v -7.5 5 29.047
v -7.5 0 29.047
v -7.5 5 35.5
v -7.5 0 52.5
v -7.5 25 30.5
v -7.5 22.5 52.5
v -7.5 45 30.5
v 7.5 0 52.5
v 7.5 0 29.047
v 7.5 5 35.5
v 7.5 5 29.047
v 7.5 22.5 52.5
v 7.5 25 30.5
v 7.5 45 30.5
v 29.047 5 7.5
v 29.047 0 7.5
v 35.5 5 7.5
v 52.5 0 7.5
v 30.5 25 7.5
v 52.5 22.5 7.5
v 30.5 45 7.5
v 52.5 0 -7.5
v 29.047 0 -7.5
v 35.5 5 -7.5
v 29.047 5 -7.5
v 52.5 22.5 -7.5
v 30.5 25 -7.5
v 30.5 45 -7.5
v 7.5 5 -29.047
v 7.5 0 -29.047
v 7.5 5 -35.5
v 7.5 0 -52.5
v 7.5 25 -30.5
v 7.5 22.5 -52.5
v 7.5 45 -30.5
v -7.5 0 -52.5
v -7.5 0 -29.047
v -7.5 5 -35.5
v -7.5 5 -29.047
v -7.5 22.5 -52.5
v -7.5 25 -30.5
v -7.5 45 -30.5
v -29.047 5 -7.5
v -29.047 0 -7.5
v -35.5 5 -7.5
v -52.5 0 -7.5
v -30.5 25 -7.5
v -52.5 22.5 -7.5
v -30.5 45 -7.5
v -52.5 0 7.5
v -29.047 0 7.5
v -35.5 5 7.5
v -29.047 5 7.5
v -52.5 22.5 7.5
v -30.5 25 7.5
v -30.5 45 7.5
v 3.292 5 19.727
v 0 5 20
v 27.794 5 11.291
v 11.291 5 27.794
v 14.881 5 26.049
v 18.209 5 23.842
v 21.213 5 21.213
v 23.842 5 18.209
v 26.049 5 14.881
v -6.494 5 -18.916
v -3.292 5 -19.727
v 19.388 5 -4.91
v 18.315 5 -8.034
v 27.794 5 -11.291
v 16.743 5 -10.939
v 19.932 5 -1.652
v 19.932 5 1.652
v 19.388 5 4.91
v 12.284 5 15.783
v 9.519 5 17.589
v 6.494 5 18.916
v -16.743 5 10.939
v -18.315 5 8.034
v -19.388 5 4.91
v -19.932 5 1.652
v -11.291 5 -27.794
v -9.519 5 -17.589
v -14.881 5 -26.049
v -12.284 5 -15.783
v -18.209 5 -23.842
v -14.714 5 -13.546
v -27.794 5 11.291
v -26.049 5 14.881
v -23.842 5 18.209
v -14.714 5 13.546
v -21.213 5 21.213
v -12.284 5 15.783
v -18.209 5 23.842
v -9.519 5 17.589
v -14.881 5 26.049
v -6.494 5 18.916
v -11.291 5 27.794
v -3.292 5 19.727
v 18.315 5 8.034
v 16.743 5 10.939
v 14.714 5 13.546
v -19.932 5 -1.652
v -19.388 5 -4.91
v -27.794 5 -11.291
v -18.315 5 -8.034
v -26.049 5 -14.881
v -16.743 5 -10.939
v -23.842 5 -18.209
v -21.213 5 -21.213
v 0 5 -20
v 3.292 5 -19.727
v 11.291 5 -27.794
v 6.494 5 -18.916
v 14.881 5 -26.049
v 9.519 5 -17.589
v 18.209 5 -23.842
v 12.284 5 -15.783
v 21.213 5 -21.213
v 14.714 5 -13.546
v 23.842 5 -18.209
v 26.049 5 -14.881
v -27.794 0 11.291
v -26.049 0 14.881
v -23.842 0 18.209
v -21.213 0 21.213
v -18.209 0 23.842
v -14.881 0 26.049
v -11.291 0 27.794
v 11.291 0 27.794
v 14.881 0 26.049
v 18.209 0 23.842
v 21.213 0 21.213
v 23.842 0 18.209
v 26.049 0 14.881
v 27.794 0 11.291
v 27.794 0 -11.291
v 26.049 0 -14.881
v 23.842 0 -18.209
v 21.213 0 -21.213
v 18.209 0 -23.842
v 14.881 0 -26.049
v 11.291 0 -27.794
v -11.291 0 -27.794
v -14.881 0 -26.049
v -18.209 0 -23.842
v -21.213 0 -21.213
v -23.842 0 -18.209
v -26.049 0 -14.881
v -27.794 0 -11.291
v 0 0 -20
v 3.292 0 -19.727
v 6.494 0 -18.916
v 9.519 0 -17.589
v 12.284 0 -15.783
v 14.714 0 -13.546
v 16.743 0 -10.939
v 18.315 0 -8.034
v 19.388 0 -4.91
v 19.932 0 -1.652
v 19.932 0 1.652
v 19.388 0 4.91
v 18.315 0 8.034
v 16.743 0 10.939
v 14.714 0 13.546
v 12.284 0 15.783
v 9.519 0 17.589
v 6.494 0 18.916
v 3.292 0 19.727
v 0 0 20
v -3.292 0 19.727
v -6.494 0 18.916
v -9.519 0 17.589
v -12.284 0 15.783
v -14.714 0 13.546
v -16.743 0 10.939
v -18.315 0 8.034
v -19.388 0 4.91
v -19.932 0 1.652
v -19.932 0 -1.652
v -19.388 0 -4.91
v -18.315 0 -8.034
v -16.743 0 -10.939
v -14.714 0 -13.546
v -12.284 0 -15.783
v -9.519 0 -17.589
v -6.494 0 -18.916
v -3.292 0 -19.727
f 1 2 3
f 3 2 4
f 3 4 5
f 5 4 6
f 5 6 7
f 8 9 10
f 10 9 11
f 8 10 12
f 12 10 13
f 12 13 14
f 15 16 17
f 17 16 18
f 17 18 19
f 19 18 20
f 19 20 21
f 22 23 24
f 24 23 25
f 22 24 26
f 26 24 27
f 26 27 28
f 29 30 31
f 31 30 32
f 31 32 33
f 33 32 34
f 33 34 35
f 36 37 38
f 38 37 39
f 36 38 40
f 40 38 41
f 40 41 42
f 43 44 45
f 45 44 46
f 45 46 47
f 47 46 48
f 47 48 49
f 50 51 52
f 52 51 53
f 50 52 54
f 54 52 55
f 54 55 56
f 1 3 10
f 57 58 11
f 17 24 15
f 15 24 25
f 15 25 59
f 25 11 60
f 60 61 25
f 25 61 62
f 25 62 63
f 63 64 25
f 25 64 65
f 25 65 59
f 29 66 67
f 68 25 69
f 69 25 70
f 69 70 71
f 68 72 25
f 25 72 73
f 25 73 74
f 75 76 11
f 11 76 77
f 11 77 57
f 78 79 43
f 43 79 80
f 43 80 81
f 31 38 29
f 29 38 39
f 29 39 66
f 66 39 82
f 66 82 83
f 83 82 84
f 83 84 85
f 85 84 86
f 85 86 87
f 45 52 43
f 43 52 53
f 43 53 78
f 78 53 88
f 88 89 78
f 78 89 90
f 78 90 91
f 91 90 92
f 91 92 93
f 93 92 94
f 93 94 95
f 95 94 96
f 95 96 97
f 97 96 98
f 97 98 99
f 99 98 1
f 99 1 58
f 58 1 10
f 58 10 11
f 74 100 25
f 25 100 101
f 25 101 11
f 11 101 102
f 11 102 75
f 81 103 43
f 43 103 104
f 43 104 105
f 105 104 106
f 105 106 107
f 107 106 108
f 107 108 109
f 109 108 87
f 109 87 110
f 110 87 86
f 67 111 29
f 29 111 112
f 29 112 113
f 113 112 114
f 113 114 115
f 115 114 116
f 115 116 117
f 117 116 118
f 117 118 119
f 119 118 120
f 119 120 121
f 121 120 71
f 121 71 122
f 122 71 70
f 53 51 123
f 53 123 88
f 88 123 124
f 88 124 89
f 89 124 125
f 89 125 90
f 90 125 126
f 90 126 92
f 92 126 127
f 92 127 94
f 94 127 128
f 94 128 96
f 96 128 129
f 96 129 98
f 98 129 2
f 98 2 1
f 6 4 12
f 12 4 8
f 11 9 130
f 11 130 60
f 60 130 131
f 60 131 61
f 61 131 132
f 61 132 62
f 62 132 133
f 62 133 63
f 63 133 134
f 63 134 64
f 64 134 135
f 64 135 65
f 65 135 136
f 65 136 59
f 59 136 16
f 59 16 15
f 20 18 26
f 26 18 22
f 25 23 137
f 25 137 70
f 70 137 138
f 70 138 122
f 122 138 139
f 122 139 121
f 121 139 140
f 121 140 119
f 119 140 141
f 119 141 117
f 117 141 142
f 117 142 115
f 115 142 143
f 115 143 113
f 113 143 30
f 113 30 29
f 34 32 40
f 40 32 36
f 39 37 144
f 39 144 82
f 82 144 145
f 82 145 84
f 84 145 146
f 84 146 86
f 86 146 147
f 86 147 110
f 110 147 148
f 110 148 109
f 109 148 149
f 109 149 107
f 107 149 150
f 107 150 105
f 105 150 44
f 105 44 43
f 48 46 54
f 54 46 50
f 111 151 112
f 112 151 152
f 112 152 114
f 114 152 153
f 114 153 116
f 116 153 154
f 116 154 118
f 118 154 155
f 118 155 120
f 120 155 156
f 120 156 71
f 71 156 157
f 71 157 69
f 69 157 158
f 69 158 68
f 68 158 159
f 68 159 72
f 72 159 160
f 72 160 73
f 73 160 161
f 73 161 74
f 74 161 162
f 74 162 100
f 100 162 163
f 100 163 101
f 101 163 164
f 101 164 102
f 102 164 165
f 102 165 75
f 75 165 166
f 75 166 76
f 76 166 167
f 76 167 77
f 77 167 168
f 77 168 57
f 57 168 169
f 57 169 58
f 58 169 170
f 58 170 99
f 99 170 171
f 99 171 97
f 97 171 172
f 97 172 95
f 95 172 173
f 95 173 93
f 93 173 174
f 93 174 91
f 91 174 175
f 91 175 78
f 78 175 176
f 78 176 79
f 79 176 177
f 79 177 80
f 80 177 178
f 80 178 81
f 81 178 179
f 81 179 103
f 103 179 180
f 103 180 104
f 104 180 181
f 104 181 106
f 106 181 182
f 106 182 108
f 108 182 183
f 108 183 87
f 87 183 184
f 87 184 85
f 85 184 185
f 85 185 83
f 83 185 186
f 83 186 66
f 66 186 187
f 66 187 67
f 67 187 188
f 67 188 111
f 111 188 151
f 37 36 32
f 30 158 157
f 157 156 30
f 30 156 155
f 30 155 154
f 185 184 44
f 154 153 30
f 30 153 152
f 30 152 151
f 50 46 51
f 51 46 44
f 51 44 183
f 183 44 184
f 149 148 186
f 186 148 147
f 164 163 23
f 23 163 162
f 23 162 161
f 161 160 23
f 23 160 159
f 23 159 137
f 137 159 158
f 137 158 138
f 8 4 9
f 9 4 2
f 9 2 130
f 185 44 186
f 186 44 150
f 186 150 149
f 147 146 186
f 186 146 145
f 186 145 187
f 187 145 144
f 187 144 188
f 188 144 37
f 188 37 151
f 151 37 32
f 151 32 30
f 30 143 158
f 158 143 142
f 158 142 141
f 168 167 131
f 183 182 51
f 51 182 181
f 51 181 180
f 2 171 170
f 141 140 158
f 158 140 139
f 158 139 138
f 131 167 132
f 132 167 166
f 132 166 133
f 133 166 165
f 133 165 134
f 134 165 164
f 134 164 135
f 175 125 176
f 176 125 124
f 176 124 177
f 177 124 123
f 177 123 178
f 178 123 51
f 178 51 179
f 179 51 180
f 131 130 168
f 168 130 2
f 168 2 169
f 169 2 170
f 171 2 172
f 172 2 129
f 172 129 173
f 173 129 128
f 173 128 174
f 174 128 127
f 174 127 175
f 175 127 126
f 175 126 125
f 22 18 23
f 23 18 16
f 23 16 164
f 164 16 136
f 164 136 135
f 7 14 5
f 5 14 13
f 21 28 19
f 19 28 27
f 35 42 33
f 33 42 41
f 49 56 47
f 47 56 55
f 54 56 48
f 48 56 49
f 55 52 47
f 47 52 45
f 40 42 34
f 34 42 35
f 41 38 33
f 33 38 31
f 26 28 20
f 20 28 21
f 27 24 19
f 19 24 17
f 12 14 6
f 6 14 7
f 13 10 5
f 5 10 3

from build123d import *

# Parameters (mm, degrees)
EXTRUDE_1_DEPTH     = 5
SKETCH_4_W          = 22
SKETCH_4_H          = 15
SKETCH_4_W_2        = 15
SKETCH_4_H_2        = 22
EXTRUDE_3_DEPTH     = 40
CUT_EXTRUDE_1_REACH = 93.549
CUT_EXTRUDE_2_REACH = 93.549
CUT_EXTRUDE_3_REACH = 93.549
CUT_EXTRUDE_4_REACH = 93.549


with BuildPart() as part:
    # 草图1 → 凸台-拉伸1 (new body)
    with BuildSketch(Plane(origin=(0, 0, 0), x_dir=(1, 0, 0), z_dir=(0, 1, 0))):
        with BuildLine():
            ThreePointArc((29.047375097, 7.5), (21.213203436, 21.213203436), (7.5, 29.047375097))
            Line((7.5, 29.047375097), (7.5, 18.540496218))
            ThreePointArc((7.5, 18.540496218), (14.142135624, 14.142135624), (18.540496218, 7.5))
            Line((18.540496218, 7.5), (29.047375097, 7.5))
        make_face()
        with BuildLine():
            ThreePointArc((30, 0), (29.760890888, 3.780128774), (29.047375097, 7.5))
            Line((29.047375097, 7.5), (18.540496218, 7.5))
            ThreePointArc((18.540496218, 7.5), (19.63173355, 3.820345249), (20, 0))
            ThreePointArc((20, 0), (19.63173355, -3.820345249), (18.540496218, -7.5))
            Line((18.540496218, -7.5), (29.047375097, -7.5))
            ThreePointArc((29.047375097, -7.5), (29.760890888, -3.780128774), (30, 0))
        make_face()
        with BuildLine():
            Line((52.5, 7.5), (29.047375097, 7.5))
            ThreePointArc((29.047375097, 7.5), (29.760890888, 3.780128774), (30, 0))
            ThreePointArc((30, 0), (29.760890888, -3.780128774), (29.047375097, -7.5))
            Line((29.047375097, -7.5), (52.5, -7.5))
            Line((52.5, -7.5), (52.5, 7.5))
        make_face()
        with BuildLine():
            ThreePointArc((7.5, -29.047375097), (21.213203436, -21.213203436), (29.047375097, -7.5))
            Line((29.047375097, -7.5), (18.540496218, -7.5))
            ThreePointArc((18.540496218, -7.5), (14.142135624, -14.142135624), (7.5, -18.540496218))
            Line((7.5, -18.540496218), (7.5, -29.047375097))
        make_face()
        with BuildLine():
            ThreePointArc((7.5, -29.047375097), (0, -30), (-7.5, -29.047375097))
            Line((-7.5, -29.047375097), (-7.5, -52.5))
            Line((-7.5, -52.5), (7.5, -52.5))
            Line((7.5, -52.5), (7.5, -29.047375097))
        make_face()
        with BuildLine():
            Line((-7.5, -18.540496218), (-7.5, -29.047375097))
            ThreePointArc((-7.5, -29.047375097), (0, -30), (7.5, -29.047375097))
            Line((7.5, -29.047375097), (7.5, -18.540496218))
            ThreePointArc((7.5, -18.540496218), (0, -20), (-7.5, -18.540496218))
        make_face()
        with BuildLine():
            Line((-18.540496218, -7.5), (-29.047375097, -7.5))
            ThreePointArc((-29.047375097, -7.5), (-21.213203436, -21.213203436), (-7.5, -29.047375097))
            Line((-7.5, -29.047375097), (-7.5, -18.540496218))
            ThreePointArc((-7.5, -18.540496218), (-14.142135624, -14.142135624), (-18.540496218, -7.5))
        make_face()
        with BuildLine():
            Line((-18.540496218, 7.5), (-29.047375097, 7.5))
            ThreePointArc((-29.047375097, 7.5), (-30, 0), (-29.047375097, -7.5))
            Line((-29.047375097, -7.5), (-18.540496218, -7.5))
            ThreePointArc((-18.540496218, -7.5), (-20, 0), (-18.540496218, 7.5))
        make_face()
        with BuildLine():
            ThreePointArc((-29.047375097, -7.5), (-30, 0), (-29.047375097, 7.5))
            Line((-29.047375097, 7.5), (-52.5, 7.5))
            Line((-52.5, 7.5), (-52.5, -7.5))
            Line((-52.5, -7.5), (-29.047375097, -7.5))
        make_face()
        with BuildLine():
            Line((-7.5, 18.540496218), (-7.5, 29.047375097))
            ThreePointArc((-7.5, 29.047375097), (-21.213203436, 21.213203436), (-29.047375097, 7.5))
            Line((-29.047375097, 7.5), (-18.540496218, 7.5))
            ThreePointArc((-18.540496218, 7.5), (-14.142135624, 14.142135624), (-7.5, 18.540496218))
        make_face()
        with BuildLine():
            ThreePointArc((7.5, 29.047375097), (0, 30), (-7.5, 29.047375097))
            Line((-7.5, 29.047375097), (-7.5, 18.540496218))
            ThreePointArc((-7.5, 18.540496218), (0, 20), (7.5, 18.540496218))
            Line((7.5, 18.540496218), (7.5, 29.047375097))
        make_face()
        with BuildLine():
            Line((7.5, 52.5), (-7.5, 52.5))
            Line((-7.5, 52.5), (-7.5, 29.047375097))
            ThreePointArc((-7.5, 29.047375097), (0, 30), (7.5, 29.047375097))
            Line((7.5, 29.047375097), (7.5, 52.5))
        make_face()
    extrude(amount=EXTRUDE_1_DEPTH)

    # 草图4 → 凸台-拉伸3 (add)
    with BuildSketch(Plane(origin=(0, 5, 0), x_dir=(1, 0, 0), z_dir=(0, 1, 0))):
        with Locations((-41.5, 0)):
            Rectangle(SKETCH_4_W, SKETCH_4_H)
        with Locations((0, 41.5)):
            Rectangle(SKETCH_4_W_2, SKETCH_4_H_2)
        with Locations((41.5, 0)):
            Rectangle(SKETCH_4_W, SKETCH_4_H)
        with Locations((0, -41.5)):
            Rectangle(SKETCH_4_W_2, SKETCH_4_H_2)
    extrude(amount=EXTRUDE_3_DEPTH)

    # 草图5 → 切除-拉伸1 (cut, up to next)
    with BuildSketch(Plane.XY.offset(7.5), mode=Mode.PRIVATE) as cut_extrude_1_sk1:
        Polygon((-52.5, 22.5), (-30.5, 45), (-52.5, 45), align=None)
    cut_extrude_1_tool1 = extrude(cut_extrude_1_sk1.sketch, amount=-CUT_EXTRUDE_1_REACH, mode=Mode.PRIVATE) & part.part
    # 草图5 → 切除-拉伸1 (cut, up to next)
    with BuildSketch(Plane.XY.offset(7.5), mode=Mode.PRIVATE) as cut_extrude_1_sk2:
        Polygon((-35.5, 5), (-30.5, 5), (-30.5, 25), align=None)
    cut_extrude_1_tool2 = extrude(cut_extrude_1_sk2.sketch, amount=-CUT_EXTRUDE_1_REACH, mode=Mode.PRIVATE) & part.part
    add(cut_extrude_1_tool1.solids().sort_by_distance((-45.166667, 37.5, 7.5))[0], mode=Mode.SUBTRACT)
    add(cut_extrude_1_tool2.solids().sort_by_distance((-32.166667, 11.666667, 7.5))[0], mode=Mode.SUBTRACT)

    # 草图6 → 切除-拉伸2 (cut, up to next)
    with BuildSketch(Plane.ZY.offset(7.5), mode=Mode.PRIVATE) as cut_extrude_2_sk1:
        Polygon((-52.5, 22.5), (-30.5, 45), (-52.5, 45), align=None)
    cut_extrude_2_tool1 = extrude(cut_extrude_2_sk1.sketch, amount=-CUT_EXTRUDE_2_REACH, mode=Mode.PRIVATE) & part.part
    # 草图6 → 切除-拉伸2 (cut, up to next)
    with BuildSketch(Plane.ZY.offset(7.5), mode=Mode.PRIVATE) as cut_extrude_2_sk2:
        Polygon((-35.5, 5), (-30.5, 5), (-30.5, 25), align=None)
    cut_extrude_2_tool2 = extrude(cut_extrude_2_sk2.sketch, amount=-CUT_EXTRUDE_2_REACH, mode=Mode.PRIVATE) & part.part
    add(cut_extrude_2_tool1.solids().sort_by_distance((-7.5, 37.5, -45.166667))[0], mode=Mode.SUBTRACT)
    add(cut_extrude_2_tool2.solids().sort_by_distance((-7.5, 11.666667, -32.166667))[0], mode=Mode.SUBTRACT)

    # 草图7 → 切除-拉伸3 (cut, up to next)
    with BuildSketch(Plane(origin=(0, 0, -7.5), x_dir=(-1, 0, 0), z_dir=(0, 0, -1)), mode=Mode.PRIVATE) as cut_extrude_3_sk1:
        Polygon((-52.5, 22.5), (-30.5, 45), (-52.5, 45), align=None)
    cut_extrude_3_tool1 = extrude(cut_extrude_3_sk1.sketch, amount=-CUT_EXTRUDE_3_REACH, mode=Mode.PRIVATE) & part.part
    # 草图7 → 切除-拉伸3 (cut, up to next)
    with BuildSketch(Plane(origin=(0, 0, -7.5), x_dir=(-1, 0, 0), z_dir=(0, 0, -1)), mode=Mode.PRIVATE) as cut_extrude_3_sk2:
        Polygon((-35.5, 5), (-30.5, 5), (-30.5, 25), align=None)
    cut_extrude_3_tool2 = extrude(cut_extrude_3_sk2.sketch, amount=-CUT_EXTRUDE_3_REACH, mode=Mode.PRIVATE) & part.part
    add(cut_extrude_3_tool1.solids().sort_by_distance((45.166667, 37.5, -7.5))[0], mode=Mode.SUBTRACT)
    add(cut_extrude_3_tool2.solids().sort_by_distance((32.166667, 11.666667, -7.5))[0], mode=Mode.SUBTRACT)

    # 草图8 → 切除-拉伸4 (cut, up to next)
    with BuildSketch(Plane(origin=(7.5, 0, 0), x_dir=(0, 0, -1), z_dir=(1, 0, 0)), mode=Mode.PRIVATE) as cut_extrude_4_sk1:
        Polygon((-52.5, 22.5), (-30.5, 45), (-52.5, 45), align=None)
    cut_extrude_4_tool1 = extrude(cut_extrude_4_sk1.sketch, amount=-CUT_EXTRUDE_4_REACH, mode=Mode.PRIVATE) & part.part
    # 草图8 → 切除-拉伸4 (cut, up to next)
    with BuildSketch(Plane(origin=(7.5, 0, 0), x_dir=(0, 0, -1), z_dir=(1, 0, 0)), mode=Mode.PRIVATE) as cut_extrude_4_sk2:
        Polygon((-35.5, 5), (-30.5, 5), (-30.5, 25), align=None)
    cut_extrude_4_tool2 = extrude(cut_extrude_4_sk2.sketch, amount=-CUT_EXTRUDE_4_REACH, mode=Mode.PRIVATE) & part.part
    add(cut_extrude_4_tool1.solids().sort_by_distance((7.5, 37.5, 45.166667))[0], mode=Mode.SUBTRACT)
    add(cut_extrude_4_tool2.solids().sort_by_distance((7.5, 11.666667, 32.166667))[0], mode=Mode.SUBTRACT)


solid = part.part
